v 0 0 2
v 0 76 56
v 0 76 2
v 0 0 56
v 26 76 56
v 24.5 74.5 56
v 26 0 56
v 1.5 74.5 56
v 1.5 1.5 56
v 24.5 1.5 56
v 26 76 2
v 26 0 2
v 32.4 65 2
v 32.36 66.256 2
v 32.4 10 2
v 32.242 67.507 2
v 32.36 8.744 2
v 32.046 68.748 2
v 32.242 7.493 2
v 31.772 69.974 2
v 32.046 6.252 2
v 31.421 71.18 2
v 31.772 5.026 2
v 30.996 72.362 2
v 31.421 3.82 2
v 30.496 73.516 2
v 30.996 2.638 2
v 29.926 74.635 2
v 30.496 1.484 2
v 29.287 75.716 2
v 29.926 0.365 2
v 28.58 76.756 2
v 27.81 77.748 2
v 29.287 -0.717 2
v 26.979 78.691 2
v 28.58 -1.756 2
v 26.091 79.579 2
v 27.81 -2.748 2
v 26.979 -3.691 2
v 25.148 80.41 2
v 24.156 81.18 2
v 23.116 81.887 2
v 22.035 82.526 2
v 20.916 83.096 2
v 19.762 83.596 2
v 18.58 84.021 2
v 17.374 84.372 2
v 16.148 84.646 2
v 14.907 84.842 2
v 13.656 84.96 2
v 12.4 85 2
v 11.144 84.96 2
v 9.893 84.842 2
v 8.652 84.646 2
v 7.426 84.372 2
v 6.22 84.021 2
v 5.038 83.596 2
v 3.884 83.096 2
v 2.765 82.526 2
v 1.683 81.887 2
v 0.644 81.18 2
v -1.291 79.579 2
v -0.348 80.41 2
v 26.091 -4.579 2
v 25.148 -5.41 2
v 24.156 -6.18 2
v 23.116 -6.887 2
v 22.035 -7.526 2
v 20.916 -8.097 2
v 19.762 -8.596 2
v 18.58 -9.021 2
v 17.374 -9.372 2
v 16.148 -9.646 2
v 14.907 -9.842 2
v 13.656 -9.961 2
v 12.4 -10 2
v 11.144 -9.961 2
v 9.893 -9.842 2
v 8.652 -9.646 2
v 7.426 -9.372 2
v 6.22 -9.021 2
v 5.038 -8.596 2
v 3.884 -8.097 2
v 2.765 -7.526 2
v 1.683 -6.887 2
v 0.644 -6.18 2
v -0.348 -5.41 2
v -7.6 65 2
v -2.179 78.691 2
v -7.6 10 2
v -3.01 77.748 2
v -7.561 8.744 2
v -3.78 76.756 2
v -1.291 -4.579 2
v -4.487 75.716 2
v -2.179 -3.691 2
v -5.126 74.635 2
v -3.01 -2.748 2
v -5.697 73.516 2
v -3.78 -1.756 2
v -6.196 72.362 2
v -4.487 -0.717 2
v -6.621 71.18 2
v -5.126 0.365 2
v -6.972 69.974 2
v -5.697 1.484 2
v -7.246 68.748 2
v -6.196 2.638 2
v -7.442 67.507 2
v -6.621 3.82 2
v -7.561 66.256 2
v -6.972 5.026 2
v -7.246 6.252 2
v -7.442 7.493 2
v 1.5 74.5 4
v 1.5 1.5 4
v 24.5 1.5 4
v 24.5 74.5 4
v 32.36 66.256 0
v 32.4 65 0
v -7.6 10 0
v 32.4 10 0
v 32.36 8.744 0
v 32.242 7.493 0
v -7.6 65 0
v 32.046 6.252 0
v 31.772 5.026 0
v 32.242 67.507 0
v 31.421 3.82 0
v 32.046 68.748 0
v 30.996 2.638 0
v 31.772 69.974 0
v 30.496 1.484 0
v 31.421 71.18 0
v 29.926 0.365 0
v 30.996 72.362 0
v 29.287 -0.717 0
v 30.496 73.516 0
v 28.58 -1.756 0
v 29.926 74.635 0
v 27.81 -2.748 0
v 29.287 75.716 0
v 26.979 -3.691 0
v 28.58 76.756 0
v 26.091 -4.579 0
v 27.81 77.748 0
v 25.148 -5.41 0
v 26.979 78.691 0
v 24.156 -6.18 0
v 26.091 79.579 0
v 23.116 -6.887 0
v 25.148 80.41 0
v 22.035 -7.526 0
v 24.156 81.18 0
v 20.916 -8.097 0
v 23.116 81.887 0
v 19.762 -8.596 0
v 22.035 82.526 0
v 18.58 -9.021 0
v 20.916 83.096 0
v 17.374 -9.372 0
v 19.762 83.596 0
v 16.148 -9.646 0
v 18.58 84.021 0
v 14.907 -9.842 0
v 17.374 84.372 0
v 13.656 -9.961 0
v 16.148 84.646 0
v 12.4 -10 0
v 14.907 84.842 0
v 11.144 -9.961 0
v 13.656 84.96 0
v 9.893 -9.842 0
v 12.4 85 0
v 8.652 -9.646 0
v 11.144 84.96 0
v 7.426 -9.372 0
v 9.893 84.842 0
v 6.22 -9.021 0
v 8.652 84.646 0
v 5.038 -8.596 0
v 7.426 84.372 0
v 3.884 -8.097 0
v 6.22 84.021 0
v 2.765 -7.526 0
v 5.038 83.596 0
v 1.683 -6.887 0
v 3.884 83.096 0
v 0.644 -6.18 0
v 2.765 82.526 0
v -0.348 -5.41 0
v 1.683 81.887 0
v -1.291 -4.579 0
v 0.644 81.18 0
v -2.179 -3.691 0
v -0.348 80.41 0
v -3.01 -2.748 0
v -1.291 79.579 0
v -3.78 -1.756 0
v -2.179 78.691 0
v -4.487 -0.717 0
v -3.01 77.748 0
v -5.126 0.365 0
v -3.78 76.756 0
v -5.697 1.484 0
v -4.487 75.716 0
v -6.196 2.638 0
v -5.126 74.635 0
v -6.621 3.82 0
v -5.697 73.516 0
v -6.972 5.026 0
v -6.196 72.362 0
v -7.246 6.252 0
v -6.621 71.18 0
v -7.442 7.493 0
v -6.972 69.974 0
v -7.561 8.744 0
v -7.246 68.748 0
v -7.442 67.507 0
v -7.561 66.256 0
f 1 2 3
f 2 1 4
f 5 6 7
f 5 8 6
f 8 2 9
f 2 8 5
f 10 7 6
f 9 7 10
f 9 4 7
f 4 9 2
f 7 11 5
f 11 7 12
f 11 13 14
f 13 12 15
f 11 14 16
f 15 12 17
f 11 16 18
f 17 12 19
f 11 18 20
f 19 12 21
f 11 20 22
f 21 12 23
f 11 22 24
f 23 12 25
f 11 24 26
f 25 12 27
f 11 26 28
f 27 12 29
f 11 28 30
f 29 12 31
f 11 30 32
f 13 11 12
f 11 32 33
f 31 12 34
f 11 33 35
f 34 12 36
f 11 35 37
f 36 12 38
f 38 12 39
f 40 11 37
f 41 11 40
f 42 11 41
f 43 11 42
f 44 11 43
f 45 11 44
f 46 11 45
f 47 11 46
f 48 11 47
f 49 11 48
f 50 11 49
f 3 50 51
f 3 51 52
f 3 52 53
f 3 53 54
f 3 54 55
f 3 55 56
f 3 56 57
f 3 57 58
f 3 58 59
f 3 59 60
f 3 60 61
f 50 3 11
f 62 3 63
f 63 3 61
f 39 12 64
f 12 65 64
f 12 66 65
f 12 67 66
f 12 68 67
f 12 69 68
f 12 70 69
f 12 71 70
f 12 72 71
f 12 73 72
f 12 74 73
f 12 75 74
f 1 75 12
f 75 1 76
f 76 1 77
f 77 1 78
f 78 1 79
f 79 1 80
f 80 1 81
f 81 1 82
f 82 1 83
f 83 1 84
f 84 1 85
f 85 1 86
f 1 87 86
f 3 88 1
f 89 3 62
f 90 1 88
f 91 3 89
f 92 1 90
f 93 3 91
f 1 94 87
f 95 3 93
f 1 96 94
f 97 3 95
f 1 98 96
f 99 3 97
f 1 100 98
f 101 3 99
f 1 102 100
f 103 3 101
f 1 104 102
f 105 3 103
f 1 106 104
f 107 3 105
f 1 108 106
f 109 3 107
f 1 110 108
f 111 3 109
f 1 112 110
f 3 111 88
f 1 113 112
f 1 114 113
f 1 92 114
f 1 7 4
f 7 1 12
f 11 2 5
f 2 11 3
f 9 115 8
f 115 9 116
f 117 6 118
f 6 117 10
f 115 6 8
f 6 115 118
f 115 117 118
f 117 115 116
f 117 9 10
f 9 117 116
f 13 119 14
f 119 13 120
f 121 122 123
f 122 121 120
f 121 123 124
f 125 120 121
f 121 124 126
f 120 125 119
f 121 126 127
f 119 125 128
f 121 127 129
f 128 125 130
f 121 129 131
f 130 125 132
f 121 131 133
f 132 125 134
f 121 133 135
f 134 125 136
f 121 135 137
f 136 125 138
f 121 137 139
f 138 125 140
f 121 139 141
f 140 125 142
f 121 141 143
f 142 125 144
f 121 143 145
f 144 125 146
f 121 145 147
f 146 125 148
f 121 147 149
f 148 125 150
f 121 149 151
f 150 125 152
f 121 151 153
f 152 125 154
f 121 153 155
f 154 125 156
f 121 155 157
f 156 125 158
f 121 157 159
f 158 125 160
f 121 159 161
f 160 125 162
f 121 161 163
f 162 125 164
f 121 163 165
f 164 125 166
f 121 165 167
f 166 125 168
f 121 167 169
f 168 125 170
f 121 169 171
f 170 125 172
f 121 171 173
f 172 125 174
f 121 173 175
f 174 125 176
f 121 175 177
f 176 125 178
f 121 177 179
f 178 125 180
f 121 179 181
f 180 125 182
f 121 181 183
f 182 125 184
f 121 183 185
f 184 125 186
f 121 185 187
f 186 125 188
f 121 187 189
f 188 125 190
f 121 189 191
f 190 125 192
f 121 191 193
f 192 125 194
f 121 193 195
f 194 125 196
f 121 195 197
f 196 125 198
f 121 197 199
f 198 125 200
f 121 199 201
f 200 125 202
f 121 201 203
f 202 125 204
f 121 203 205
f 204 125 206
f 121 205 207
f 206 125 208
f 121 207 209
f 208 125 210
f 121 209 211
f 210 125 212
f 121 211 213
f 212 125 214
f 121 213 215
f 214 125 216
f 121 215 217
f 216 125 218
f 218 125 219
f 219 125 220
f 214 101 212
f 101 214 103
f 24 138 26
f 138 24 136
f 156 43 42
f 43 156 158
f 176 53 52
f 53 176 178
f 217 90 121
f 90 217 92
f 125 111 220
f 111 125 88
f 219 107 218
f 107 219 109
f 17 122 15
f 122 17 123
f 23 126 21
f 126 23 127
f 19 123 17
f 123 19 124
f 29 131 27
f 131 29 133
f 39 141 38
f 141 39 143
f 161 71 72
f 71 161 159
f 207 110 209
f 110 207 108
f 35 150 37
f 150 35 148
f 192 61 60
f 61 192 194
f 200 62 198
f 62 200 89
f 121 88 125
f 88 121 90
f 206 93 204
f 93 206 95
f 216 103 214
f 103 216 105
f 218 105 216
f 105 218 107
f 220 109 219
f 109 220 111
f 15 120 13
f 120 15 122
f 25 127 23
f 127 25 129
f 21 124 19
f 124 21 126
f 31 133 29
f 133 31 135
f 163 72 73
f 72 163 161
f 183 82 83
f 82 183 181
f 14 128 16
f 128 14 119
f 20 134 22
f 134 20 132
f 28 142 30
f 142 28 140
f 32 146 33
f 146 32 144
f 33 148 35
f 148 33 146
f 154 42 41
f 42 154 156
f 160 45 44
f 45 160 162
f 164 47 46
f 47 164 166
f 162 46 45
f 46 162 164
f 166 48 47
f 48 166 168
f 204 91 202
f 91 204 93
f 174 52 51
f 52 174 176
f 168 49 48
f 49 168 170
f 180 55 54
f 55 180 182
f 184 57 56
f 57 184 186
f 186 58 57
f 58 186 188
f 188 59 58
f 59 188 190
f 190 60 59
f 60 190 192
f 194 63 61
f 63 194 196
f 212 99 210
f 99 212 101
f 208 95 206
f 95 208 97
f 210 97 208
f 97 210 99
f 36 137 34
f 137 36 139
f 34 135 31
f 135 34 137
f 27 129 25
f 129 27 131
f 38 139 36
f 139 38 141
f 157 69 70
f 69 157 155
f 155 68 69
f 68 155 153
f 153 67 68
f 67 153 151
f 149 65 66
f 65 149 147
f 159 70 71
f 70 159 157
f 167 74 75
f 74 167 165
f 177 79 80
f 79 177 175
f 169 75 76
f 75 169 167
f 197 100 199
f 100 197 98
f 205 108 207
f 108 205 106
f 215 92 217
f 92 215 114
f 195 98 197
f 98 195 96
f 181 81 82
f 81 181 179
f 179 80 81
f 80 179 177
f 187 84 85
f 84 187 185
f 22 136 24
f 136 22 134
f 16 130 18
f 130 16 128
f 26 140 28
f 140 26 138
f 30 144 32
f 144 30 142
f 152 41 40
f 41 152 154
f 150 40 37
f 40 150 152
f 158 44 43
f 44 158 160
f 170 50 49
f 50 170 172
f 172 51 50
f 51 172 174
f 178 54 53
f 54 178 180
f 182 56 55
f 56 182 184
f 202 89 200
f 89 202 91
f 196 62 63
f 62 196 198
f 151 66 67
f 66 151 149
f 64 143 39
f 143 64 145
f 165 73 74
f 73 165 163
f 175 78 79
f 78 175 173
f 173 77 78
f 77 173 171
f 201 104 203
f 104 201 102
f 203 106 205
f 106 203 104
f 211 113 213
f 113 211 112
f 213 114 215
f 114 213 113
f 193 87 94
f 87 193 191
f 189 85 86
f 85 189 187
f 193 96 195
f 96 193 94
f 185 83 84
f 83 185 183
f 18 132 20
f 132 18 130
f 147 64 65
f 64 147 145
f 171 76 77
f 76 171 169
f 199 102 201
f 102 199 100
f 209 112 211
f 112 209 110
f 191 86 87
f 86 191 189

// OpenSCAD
//--------------------------------------------------------------
// Name: Подставка для повербанка. PwbHandle.
// Version: 3.0
// Purpose: 
// Author: Evgeny Klepikov
// E-mail: klek07@ya.ru
//
// Created: 30.09.2017
// Updated: 30.09.2017
// Copyright: (c) 2017 WildFox24
// Licence: GPL v3
//--------------------------------------------------------------
translate([0,0,2])
difference(){
    cube([26,76,54]);
    translate([1.5,1.5,2]) color("lightblue") cube([23,73,54]);
}
translate([12.4,10,0])
hull() {
    translate([0,55,0]) cylinder(h=2, d=40, $fn=100);
    cylinder(h=2, d=40, $fn=100);
}
